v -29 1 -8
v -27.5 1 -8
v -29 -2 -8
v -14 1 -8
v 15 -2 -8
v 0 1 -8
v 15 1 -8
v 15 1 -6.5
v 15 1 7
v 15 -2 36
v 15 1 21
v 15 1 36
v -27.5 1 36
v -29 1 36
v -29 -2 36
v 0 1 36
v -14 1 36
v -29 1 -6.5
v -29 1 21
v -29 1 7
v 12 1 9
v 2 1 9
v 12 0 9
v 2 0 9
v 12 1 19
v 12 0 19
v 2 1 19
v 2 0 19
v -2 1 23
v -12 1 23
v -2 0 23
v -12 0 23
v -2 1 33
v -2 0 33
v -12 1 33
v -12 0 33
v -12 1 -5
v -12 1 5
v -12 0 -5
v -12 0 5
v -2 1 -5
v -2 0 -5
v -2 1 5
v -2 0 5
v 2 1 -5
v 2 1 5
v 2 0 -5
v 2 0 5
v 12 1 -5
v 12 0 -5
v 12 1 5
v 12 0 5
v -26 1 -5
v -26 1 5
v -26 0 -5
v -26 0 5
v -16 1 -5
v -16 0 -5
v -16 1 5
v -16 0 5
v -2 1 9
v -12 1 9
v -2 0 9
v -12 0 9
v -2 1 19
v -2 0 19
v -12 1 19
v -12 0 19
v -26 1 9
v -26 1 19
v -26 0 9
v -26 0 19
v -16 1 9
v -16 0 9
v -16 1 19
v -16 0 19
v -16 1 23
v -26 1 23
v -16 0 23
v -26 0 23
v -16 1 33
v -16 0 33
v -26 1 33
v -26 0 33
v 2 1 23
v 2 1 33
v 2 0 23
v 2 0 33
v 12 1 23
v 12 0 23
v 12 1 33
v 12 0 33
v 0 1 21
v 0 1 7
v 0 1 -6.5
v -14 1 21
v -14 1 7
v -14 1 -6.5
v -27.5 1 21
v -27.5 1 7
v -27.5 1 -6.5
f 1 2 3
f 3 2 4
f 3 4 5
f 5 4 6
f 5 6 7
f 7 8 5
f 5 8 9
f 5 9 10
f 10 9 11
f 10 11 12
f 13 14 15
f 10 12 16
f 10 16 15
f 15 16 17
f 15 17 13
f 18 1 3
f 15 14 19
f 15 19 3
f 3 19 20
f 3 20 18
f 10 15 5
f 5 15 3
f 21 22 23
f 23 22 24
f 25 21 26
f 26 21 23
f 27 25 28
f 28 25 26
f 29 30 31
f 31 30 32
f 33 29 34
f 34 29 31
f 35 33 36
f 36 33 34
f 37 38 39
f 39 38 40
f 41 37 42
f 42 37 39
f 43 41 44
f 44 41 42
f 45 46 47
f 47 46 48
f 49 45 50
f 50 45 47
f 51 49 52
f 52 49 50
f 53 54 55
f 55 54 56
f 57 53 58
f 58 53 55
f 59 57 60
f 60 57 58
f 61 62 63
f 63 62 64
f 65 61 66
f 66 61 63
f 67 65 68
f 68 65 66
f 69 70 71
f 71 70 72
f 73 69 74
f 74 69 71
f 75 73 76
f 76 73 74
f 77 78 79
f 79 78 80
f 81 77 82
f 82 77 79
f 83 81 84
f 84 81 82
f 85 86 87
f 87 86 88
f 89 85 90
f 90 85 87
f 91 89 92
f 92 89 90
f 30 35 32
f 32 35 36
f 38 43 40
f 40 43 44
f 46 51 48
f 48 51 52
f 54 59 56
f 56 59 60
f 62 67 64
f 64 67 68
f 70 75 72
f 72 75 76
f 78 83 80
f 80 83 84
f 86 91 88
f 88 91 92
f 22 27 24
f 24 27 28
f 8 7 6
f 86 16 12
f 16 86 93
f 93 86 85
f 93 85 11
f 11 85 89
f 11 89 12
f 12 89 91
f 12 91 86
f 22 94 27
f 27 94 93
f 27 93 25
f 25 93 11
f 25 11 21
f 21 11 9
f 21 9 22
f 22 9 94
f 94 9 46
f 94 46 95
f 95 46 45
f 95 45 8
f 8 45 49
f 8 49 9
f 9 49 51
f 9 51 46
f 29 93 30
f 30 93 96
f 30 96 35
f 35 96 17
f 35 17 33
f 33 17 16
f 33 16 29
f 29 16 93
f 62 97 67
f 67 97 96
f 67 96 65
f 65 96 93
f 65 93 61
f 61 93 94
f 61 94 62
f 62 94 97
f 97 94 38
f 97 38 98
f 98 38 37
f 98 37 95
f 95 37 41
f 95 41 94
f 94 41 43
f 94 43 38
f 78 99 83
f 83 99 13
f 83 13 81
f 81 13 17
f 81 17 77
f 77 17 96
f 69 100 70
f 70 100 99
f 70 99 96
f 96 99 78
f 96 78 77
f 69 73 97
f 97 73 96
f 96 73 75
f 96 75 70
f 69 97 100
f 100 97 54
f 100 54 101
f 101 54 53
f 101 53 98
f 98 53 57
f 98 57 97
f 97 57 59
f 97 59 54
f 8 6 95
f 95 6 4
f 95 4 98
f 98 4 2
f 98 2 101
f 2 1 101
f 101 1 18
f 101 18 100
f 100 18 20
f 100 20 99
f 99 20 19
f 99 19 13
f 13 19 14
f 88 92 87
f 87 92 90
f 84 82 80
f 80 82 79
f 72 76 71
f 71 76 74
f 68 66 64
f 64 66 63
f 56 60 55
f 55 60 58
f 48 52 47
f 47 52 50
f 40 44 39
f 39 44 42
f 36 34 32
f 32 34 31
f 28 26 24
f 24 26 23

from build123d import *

# Parameters (mm, degrees)
SKETCH1_W           = 44
SKETCH1_H           = 44
BOSS_EXTRUDE2_DEPTH = 2
SKETCH1_5_W         = 44
SKETCH1_5_H         = 44
SKETCH1_5_W_2       = 10
SKETCH1_5_H_2       = 10
BOSS_EXTRUDE3_DEPTH = 1


with BuildPart() as part:
    # Sketch1 → Boss-Extrude2 (new body)
    with BuildSketch(Plane(origin=(0, 0, 0), x_dir=(1, 0, 0), z_dir=(0, 1, 0))):
        with Locations((-7, -14)):
            Rectangle(SKETCH1_W, SKETCH1_H)
    extrude(amount=-BOSS_EXTRUDE2_DEPTH)

    # Sketch1_5 → Boss-Extrude3 (add)
    with BuildSketch(Plane(origin=(0, 0, 0), x_dir=(1, 0, 0), z_dir=(0, 1, 0))):
        with Locations((-7, -14)):
            Rectangle(SKETCH1_5_W, SKETCH1_5_H)
        with Locations((7, -28)):
            Rectangle(SKETCH1_5_W_2, SKETCH1_5_H_2, mode=Mode.SUBTRACT)
        with Locations((-21, -28)):
            Rectangle(SKETCH1_5_W_2, SKETCH1_5_H_2, mode=Mode.SUBTRACT)
        with Locations((-21, -14)):
            Rectangle(SKETCH1_5_W_2, SKETCH1_5_H_2, mode=Mode.SUBTRACT)
        with Locations((-7, -14)):
            Rectangle(SKETCH1_5_W_2, SKETCH1_5_H_2, mode=Mode.SUBTRACT)
        with Locations((-21, 0)):
            Rectangle(SKETCH1_5_W_2, SKETCH1_5_H_2, mode=Mode.SUBTRACT)
        with Locations((7, 0)):
            Rectangle(SKETCH1_5_W_2, SKETCH1_5_H_2, mode=Mode.SUBTRACT)
        with Locations((-7, 0)):
            Rectangle(SKETCH1_5_W_2, SKETCH1_5_H_2, mode=Mode.SUBTRACT)
        with Locations((-7, -28)):
            Rectangle(SKETCH1_5_W_2, SKETCH1_5_H_2, mode=Mode.SUBTRACT)
        with Locations((7, -14)):
            Rectangle(SKETCH1_5_W_2, SKETCH1_5_H_2, mode=Mode.SUBTRACT)
    extrude(amount=BOSS_EXTRUDE3_DEPTH)


solid = part.part
